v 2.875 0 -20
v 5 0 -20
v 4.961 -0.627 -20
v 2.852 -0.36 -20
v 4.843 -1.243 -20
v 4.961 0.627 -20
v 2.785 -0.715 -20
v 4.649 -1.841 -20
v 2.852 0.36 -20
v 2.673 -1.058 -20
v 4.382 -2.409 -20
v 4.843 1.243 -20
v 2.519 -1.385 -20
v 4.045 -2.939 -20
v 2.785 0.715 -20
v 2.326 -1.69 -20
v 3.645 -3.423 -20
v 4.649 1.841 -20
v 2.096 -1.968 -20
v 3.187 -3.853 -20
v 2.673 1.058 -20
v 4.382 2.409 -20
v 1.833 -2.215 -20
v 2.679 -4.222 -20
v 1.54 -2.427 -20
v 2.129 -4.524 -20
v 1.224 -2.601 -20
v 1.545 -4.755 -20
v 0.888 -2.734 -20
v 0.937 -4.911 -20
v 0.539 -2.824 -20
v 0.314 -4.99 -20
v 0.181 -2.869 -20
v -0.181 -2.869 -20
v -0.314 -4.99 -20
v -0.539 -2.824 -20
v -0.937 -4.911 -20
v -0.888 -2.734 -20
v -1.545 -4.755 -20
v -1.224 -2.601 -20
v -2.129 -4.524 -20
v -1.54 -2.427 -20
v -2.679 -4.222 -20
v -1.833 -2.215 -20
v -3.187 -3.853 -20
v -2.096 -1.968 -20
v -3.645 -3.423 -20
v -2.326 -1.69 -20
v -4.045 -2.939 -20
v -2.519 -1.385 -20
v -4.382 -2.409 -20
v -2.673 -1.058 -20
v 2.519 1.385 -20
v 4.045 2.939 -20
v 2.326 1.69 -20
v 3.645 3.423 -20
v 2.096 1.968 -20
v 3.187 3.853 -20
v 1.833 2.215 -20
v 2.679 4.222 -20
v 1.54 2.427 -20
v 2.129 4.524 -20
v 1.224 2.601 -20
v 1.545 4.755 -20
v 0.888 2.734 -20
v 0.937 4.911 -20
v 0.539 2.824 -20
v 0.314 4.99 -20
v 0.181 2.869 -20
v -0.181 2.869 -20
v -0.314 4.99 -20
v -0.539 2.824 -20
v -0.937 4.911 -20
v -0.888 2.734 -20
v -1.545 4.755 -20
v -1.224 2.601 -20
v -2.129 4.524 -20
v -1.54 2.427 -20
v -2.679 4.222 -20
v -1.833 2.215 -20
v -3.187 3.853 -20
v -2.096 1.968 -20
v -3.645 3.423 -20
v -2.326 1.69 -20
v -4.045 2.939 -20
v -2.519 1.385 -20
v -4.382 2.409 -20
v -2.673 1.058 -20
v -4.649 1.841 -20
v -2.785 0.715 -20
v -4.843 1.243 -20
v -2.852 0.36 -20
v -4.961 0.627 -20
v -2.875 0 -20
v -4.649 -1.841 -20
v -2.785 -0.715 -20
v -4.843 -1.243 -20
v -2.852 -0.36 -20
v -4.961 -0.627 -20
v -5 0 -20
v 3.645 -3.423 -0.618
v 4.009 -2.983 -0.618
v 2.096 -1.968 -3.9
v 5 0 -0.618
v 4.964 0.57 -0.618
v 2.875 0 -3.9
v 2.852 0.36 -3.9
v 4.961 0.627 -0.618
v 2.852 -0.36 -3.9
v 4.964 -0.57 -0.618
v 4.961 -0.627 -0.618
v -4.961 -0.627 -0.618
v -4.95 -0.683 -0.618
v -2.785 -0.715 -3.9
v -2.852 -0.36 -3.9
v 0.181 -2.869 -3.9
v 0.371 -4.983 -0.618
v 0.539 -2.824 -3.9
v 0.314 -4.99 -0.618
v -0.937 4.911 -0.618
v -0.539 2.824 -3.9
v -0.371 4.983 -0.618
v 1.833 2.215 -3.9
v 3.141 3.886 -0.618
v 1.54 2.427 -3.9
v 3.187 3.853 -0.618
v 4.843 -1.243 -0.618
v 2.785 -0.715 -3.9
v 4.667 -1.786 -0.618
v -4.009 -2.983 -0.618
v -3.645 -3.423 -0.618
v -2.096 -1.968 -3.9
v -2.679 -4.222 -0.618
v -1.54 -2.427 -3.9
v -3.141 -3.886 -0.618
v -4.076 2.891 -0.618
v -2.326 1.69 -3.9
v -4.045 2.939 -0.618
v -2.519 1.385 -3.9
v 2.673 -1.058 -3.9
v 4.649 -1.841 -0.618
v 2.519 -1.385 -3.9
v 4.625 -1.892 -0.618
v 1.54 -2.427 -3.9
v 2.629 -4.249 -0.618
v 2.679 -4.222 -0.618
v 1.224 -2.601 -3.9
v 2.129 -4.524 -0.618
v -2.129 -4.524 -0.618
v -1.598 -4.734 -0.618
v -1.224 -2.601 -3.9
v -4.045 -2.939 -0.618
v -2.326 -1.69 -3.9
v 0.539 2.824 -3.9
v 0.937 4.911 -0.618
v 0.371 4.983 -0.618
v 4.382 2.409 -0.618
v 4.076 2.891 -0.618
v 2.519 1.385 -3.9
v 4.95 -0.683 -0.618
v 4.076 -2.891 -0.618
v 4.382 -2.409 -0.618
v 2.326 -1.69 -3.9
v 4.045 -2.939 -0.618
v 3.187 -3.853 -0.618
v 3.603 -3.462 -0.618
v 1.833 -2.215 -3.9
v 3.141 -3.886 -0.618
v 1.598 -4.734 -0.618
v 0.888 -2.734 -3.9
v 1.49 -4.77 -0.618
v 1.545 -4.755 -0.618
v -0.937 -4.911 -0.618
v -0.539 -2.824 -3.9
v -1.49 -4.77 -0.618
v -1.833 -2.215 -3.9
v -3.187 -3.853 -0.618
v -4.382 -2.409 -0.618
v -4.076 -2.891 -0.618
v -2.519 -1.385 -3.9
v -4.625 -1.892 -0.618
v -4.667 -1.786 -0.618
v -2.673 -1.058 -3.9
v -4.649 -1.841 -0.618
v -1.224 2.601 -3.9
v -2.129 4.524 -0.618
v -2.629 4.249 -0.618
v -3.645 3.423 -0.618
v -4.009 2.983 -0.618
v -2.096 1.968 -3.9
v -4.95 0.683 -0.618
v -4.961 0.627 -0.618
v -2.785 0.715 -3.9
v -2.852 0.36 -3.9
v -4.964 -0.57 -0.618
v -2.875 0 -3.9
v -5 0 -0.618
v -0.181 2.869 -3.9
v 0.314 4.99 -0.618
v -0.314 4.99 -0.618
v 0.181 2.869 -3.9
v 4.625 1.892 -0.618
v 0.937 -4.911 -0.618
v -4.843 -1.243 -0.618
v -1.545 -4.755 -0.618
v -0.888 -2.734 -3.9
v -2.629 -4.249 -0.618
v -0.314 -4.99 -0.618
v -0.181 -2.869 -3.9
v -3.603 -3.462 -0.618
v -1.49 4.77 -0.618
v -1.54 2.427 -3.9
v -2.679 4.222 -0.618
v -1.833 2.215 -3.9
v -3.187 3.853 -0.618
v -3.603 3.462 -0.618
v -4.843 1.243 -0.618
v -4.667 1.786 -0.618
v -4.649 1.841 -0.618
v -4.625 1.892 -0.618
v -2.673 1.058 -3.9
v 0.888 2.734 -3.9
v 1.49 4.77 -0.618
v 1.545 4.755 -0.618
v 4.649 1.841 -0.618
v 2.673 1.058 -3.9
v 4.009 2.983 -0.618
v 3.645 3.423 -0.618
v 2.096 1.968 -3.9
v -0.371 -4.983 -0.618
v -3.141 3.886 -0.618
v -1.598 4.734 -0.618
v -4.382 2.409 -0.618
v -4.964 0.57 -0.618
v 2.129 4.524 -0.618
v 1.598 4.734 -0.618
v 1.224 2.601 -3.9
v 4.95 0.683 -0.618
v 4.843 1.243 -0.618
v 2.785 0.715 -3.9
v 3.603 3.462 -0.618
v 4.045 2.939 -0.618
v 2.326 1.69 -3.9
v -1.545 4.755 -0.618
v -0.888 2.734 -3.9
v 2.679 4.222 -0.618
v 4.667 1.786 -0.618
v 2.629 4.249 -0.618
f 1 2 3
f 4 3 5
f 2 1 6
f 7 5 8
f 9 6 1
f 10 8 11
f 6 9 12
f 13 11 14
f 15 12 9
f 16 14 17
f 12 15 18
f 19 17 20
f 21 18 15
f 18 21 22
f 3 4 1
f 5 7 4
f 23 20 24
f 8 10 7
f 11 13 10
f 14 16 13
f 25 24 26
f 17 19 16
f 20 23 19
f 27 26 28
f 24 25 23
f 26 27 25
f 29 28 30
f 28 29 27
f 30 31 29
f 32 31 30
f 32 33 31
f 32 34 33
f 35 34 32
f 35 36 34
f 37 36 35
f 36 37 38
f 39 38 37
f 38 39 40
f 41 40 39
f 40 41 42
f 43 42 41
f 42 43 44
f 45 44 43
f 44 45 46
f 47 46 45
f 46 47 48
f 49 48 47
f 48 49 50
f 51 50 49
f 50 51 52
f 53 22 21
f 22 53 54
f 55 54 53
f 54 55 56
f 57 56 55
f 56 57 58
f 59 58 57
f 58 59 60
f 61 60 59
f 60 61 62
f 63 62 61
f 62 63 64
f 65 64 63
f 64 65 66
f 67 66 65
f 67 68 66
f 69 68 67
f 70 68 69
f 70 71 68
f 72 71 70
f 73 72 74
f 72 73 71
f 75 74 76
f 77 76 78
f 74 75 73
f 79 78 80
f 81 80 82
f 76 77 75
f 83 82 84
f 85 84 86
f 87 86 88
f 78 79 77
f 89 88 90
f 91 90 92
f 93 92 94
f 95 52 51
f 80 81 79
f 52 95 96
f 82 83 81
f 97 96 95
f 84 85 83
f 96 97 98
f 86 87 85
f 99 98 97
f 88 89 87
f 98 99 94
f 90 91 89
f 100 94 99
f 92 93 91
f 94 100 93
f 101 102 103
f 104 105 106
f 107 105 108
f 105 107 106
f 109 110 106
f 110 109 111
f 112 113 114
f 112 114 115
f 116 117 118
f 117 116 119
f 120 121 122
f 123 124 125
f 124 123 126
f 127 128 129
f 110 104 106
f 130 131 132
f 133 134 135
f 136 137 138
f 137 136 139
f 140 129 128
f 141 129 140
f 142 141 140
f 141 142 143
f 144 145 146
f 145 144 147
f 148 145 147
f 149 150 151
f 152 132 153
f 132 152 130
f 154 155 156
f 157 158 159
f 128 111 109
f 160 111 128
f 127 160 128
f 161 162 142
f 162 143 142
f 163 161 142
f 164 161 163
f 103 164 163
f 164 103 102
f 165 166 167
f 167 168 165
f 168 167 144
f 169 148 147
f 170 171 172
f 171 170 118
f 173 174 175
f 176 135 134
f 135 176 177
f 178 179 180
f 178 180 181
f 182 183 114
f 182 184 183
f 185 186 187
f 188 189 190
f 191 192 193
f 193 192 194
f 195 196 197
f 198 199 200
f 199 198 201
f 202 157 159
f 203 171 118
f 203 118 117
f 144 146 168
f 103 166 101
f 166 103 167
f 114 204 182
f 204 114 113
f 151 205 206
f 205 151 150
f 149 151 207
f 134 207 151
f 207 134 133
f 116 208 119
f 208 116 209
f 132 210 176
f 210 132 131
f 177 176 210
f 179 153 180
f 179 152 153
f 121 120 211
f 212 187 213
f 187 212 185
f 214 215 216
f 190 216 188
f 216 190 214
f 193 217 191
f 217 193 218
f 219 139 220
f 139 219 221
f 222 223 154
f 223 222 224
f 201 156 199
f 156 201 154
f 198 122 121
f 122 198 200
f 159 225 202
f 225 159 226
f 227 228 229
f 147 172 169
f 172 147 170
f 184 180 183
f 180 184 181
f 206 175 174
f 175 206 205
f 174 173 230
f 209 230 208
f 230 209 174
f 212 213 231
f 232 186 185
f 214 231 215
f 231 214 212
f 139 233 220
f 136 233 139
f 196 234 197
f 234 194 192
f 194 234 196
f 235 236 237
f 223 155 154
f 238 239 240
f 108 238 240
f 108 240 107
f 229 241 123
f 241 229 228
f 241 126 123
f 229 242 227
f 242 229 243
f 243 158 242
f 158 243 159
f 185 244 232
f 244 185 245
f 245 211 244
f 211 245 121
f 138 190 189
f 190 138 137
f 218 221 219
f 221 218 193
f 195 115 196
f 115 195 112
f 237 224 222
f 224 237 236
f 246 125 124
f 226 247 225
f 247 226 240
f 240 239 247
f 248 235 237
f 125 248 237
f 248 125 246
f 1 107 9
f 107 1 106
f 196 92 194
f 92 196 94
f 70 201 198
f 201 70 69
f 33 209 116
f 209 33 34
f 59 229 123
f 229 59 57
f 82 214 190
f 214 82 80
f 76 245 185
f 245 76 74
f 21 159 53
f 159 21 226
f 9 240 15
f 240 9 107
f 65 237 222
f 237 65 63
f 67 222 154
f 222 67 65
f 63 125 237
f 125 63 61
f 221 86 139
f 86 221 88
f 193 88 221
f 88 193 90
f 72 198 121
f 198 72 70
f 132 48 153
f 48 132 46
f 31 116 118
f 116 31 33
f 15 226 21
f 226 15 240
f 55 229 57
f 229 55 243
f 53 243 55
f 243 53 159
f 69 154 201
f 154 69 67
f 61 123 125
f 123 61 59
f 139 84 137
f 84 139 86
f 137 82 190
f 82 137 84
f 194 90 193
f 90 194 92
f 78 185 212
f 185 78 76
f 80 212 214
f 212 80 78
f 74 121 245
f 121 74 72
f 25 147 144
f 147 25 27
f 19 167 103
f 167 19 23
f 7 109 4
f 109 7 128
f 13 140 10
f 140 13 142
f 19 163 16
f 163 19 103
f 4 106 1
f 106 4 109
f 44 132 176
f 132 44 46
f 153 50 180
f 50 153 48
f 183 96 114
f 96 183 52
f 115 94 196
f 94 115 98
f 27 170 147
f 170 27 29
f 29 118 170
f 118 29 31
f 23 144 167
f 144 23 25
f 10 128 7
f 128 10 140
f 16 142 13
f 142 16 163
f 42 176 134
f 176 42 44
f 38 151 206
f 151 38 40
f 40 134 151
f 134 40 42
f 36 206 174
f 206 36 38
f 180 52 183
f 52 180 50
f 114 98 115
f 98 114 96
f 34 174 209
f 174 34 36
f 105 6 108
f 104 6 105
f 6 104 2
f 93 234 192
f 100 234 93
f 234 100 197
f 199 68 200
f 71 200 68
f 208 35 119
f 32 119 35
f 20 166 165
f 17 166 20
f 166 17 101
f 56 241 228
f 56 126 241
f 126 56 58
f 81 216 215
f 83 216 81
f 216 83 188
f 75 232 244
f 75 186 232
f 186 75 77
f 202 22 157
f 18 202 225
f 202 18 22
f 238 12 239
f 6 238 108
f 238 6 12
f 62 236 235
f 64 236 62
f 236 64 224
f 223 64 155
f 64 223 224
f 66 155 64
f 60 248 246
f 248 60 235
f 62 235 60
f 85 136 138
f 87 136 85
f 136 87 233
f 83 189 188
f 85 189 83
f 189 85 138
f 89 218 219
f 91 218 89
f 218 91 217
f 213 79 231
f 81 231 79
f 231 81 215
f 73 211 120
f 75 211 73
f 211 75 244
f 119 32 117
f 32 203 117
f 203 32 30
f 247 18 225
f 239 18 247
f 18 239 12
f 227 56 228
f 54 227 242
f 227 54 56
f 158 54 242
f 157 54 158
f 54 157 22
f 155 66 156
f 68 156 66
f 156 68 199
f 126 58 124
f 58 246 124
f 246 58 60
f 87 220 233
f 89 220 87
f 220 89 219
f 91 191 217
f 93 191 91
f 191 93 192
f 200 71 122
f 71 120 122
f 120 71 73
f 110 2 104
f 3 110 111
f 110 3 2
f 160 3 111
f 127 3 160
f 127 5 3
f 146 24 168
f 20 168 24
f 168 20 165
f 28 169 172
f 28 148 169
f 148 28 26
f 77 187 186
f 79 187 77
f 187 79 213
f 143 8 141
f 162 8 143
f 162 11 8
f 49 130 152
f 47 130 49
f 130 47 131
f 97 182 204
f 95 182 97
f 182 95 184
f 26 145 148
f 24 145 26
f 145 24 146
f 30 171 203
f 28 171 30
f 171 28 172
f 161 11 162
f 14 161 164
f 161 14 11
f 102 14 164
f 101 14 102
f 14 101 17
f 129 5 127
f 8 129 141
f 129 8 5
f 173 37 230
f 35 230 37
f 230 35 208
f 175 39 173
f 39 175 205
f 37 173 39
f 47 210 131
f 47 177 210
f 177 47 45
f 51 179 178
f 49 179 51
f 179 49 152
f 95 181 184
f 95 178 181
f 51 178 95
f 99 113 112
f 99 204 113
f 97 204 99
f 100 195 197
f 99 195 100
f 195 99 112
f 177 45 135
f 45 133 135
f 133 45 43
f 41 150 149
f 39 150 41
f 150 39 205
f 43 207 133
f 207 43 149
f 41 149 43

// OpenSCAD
$fn = 50;


difference() {
	union() {
		translate(v = [0, 0, -20.0000000000]) {
			cylinder(h = 20, r = 5.0000000000);
		}
		cylinder(h = 0, r = 8.0000000000);
	}
	union() {
		translate(v = [0, 0, 0]) {
			rotate(a = [0, 0, 0]) {
				difference() {
					union() {
						#translate(v = [0, 0, -20.0000000000]) {
							cylinder(h = 20, r = 2.6000000000);
						}
						#translate(v = [0, 0, -3.9000000000]) {
							cylinder(h = 3.9000000000, r1 = 2.8750000000, r2 = 5.4000000000);
						}
						#translate(v = [0, 0, -20.0000000000]) {
							cylinder(h = 20, r = 2.8750000000);
						}
						#translate(v = [0, 0, -20.0000000000]) {
							cylinder(h = 20, r = 2.6000000000);
						}
					}
					union();
				}
			}
		}
	}
}
